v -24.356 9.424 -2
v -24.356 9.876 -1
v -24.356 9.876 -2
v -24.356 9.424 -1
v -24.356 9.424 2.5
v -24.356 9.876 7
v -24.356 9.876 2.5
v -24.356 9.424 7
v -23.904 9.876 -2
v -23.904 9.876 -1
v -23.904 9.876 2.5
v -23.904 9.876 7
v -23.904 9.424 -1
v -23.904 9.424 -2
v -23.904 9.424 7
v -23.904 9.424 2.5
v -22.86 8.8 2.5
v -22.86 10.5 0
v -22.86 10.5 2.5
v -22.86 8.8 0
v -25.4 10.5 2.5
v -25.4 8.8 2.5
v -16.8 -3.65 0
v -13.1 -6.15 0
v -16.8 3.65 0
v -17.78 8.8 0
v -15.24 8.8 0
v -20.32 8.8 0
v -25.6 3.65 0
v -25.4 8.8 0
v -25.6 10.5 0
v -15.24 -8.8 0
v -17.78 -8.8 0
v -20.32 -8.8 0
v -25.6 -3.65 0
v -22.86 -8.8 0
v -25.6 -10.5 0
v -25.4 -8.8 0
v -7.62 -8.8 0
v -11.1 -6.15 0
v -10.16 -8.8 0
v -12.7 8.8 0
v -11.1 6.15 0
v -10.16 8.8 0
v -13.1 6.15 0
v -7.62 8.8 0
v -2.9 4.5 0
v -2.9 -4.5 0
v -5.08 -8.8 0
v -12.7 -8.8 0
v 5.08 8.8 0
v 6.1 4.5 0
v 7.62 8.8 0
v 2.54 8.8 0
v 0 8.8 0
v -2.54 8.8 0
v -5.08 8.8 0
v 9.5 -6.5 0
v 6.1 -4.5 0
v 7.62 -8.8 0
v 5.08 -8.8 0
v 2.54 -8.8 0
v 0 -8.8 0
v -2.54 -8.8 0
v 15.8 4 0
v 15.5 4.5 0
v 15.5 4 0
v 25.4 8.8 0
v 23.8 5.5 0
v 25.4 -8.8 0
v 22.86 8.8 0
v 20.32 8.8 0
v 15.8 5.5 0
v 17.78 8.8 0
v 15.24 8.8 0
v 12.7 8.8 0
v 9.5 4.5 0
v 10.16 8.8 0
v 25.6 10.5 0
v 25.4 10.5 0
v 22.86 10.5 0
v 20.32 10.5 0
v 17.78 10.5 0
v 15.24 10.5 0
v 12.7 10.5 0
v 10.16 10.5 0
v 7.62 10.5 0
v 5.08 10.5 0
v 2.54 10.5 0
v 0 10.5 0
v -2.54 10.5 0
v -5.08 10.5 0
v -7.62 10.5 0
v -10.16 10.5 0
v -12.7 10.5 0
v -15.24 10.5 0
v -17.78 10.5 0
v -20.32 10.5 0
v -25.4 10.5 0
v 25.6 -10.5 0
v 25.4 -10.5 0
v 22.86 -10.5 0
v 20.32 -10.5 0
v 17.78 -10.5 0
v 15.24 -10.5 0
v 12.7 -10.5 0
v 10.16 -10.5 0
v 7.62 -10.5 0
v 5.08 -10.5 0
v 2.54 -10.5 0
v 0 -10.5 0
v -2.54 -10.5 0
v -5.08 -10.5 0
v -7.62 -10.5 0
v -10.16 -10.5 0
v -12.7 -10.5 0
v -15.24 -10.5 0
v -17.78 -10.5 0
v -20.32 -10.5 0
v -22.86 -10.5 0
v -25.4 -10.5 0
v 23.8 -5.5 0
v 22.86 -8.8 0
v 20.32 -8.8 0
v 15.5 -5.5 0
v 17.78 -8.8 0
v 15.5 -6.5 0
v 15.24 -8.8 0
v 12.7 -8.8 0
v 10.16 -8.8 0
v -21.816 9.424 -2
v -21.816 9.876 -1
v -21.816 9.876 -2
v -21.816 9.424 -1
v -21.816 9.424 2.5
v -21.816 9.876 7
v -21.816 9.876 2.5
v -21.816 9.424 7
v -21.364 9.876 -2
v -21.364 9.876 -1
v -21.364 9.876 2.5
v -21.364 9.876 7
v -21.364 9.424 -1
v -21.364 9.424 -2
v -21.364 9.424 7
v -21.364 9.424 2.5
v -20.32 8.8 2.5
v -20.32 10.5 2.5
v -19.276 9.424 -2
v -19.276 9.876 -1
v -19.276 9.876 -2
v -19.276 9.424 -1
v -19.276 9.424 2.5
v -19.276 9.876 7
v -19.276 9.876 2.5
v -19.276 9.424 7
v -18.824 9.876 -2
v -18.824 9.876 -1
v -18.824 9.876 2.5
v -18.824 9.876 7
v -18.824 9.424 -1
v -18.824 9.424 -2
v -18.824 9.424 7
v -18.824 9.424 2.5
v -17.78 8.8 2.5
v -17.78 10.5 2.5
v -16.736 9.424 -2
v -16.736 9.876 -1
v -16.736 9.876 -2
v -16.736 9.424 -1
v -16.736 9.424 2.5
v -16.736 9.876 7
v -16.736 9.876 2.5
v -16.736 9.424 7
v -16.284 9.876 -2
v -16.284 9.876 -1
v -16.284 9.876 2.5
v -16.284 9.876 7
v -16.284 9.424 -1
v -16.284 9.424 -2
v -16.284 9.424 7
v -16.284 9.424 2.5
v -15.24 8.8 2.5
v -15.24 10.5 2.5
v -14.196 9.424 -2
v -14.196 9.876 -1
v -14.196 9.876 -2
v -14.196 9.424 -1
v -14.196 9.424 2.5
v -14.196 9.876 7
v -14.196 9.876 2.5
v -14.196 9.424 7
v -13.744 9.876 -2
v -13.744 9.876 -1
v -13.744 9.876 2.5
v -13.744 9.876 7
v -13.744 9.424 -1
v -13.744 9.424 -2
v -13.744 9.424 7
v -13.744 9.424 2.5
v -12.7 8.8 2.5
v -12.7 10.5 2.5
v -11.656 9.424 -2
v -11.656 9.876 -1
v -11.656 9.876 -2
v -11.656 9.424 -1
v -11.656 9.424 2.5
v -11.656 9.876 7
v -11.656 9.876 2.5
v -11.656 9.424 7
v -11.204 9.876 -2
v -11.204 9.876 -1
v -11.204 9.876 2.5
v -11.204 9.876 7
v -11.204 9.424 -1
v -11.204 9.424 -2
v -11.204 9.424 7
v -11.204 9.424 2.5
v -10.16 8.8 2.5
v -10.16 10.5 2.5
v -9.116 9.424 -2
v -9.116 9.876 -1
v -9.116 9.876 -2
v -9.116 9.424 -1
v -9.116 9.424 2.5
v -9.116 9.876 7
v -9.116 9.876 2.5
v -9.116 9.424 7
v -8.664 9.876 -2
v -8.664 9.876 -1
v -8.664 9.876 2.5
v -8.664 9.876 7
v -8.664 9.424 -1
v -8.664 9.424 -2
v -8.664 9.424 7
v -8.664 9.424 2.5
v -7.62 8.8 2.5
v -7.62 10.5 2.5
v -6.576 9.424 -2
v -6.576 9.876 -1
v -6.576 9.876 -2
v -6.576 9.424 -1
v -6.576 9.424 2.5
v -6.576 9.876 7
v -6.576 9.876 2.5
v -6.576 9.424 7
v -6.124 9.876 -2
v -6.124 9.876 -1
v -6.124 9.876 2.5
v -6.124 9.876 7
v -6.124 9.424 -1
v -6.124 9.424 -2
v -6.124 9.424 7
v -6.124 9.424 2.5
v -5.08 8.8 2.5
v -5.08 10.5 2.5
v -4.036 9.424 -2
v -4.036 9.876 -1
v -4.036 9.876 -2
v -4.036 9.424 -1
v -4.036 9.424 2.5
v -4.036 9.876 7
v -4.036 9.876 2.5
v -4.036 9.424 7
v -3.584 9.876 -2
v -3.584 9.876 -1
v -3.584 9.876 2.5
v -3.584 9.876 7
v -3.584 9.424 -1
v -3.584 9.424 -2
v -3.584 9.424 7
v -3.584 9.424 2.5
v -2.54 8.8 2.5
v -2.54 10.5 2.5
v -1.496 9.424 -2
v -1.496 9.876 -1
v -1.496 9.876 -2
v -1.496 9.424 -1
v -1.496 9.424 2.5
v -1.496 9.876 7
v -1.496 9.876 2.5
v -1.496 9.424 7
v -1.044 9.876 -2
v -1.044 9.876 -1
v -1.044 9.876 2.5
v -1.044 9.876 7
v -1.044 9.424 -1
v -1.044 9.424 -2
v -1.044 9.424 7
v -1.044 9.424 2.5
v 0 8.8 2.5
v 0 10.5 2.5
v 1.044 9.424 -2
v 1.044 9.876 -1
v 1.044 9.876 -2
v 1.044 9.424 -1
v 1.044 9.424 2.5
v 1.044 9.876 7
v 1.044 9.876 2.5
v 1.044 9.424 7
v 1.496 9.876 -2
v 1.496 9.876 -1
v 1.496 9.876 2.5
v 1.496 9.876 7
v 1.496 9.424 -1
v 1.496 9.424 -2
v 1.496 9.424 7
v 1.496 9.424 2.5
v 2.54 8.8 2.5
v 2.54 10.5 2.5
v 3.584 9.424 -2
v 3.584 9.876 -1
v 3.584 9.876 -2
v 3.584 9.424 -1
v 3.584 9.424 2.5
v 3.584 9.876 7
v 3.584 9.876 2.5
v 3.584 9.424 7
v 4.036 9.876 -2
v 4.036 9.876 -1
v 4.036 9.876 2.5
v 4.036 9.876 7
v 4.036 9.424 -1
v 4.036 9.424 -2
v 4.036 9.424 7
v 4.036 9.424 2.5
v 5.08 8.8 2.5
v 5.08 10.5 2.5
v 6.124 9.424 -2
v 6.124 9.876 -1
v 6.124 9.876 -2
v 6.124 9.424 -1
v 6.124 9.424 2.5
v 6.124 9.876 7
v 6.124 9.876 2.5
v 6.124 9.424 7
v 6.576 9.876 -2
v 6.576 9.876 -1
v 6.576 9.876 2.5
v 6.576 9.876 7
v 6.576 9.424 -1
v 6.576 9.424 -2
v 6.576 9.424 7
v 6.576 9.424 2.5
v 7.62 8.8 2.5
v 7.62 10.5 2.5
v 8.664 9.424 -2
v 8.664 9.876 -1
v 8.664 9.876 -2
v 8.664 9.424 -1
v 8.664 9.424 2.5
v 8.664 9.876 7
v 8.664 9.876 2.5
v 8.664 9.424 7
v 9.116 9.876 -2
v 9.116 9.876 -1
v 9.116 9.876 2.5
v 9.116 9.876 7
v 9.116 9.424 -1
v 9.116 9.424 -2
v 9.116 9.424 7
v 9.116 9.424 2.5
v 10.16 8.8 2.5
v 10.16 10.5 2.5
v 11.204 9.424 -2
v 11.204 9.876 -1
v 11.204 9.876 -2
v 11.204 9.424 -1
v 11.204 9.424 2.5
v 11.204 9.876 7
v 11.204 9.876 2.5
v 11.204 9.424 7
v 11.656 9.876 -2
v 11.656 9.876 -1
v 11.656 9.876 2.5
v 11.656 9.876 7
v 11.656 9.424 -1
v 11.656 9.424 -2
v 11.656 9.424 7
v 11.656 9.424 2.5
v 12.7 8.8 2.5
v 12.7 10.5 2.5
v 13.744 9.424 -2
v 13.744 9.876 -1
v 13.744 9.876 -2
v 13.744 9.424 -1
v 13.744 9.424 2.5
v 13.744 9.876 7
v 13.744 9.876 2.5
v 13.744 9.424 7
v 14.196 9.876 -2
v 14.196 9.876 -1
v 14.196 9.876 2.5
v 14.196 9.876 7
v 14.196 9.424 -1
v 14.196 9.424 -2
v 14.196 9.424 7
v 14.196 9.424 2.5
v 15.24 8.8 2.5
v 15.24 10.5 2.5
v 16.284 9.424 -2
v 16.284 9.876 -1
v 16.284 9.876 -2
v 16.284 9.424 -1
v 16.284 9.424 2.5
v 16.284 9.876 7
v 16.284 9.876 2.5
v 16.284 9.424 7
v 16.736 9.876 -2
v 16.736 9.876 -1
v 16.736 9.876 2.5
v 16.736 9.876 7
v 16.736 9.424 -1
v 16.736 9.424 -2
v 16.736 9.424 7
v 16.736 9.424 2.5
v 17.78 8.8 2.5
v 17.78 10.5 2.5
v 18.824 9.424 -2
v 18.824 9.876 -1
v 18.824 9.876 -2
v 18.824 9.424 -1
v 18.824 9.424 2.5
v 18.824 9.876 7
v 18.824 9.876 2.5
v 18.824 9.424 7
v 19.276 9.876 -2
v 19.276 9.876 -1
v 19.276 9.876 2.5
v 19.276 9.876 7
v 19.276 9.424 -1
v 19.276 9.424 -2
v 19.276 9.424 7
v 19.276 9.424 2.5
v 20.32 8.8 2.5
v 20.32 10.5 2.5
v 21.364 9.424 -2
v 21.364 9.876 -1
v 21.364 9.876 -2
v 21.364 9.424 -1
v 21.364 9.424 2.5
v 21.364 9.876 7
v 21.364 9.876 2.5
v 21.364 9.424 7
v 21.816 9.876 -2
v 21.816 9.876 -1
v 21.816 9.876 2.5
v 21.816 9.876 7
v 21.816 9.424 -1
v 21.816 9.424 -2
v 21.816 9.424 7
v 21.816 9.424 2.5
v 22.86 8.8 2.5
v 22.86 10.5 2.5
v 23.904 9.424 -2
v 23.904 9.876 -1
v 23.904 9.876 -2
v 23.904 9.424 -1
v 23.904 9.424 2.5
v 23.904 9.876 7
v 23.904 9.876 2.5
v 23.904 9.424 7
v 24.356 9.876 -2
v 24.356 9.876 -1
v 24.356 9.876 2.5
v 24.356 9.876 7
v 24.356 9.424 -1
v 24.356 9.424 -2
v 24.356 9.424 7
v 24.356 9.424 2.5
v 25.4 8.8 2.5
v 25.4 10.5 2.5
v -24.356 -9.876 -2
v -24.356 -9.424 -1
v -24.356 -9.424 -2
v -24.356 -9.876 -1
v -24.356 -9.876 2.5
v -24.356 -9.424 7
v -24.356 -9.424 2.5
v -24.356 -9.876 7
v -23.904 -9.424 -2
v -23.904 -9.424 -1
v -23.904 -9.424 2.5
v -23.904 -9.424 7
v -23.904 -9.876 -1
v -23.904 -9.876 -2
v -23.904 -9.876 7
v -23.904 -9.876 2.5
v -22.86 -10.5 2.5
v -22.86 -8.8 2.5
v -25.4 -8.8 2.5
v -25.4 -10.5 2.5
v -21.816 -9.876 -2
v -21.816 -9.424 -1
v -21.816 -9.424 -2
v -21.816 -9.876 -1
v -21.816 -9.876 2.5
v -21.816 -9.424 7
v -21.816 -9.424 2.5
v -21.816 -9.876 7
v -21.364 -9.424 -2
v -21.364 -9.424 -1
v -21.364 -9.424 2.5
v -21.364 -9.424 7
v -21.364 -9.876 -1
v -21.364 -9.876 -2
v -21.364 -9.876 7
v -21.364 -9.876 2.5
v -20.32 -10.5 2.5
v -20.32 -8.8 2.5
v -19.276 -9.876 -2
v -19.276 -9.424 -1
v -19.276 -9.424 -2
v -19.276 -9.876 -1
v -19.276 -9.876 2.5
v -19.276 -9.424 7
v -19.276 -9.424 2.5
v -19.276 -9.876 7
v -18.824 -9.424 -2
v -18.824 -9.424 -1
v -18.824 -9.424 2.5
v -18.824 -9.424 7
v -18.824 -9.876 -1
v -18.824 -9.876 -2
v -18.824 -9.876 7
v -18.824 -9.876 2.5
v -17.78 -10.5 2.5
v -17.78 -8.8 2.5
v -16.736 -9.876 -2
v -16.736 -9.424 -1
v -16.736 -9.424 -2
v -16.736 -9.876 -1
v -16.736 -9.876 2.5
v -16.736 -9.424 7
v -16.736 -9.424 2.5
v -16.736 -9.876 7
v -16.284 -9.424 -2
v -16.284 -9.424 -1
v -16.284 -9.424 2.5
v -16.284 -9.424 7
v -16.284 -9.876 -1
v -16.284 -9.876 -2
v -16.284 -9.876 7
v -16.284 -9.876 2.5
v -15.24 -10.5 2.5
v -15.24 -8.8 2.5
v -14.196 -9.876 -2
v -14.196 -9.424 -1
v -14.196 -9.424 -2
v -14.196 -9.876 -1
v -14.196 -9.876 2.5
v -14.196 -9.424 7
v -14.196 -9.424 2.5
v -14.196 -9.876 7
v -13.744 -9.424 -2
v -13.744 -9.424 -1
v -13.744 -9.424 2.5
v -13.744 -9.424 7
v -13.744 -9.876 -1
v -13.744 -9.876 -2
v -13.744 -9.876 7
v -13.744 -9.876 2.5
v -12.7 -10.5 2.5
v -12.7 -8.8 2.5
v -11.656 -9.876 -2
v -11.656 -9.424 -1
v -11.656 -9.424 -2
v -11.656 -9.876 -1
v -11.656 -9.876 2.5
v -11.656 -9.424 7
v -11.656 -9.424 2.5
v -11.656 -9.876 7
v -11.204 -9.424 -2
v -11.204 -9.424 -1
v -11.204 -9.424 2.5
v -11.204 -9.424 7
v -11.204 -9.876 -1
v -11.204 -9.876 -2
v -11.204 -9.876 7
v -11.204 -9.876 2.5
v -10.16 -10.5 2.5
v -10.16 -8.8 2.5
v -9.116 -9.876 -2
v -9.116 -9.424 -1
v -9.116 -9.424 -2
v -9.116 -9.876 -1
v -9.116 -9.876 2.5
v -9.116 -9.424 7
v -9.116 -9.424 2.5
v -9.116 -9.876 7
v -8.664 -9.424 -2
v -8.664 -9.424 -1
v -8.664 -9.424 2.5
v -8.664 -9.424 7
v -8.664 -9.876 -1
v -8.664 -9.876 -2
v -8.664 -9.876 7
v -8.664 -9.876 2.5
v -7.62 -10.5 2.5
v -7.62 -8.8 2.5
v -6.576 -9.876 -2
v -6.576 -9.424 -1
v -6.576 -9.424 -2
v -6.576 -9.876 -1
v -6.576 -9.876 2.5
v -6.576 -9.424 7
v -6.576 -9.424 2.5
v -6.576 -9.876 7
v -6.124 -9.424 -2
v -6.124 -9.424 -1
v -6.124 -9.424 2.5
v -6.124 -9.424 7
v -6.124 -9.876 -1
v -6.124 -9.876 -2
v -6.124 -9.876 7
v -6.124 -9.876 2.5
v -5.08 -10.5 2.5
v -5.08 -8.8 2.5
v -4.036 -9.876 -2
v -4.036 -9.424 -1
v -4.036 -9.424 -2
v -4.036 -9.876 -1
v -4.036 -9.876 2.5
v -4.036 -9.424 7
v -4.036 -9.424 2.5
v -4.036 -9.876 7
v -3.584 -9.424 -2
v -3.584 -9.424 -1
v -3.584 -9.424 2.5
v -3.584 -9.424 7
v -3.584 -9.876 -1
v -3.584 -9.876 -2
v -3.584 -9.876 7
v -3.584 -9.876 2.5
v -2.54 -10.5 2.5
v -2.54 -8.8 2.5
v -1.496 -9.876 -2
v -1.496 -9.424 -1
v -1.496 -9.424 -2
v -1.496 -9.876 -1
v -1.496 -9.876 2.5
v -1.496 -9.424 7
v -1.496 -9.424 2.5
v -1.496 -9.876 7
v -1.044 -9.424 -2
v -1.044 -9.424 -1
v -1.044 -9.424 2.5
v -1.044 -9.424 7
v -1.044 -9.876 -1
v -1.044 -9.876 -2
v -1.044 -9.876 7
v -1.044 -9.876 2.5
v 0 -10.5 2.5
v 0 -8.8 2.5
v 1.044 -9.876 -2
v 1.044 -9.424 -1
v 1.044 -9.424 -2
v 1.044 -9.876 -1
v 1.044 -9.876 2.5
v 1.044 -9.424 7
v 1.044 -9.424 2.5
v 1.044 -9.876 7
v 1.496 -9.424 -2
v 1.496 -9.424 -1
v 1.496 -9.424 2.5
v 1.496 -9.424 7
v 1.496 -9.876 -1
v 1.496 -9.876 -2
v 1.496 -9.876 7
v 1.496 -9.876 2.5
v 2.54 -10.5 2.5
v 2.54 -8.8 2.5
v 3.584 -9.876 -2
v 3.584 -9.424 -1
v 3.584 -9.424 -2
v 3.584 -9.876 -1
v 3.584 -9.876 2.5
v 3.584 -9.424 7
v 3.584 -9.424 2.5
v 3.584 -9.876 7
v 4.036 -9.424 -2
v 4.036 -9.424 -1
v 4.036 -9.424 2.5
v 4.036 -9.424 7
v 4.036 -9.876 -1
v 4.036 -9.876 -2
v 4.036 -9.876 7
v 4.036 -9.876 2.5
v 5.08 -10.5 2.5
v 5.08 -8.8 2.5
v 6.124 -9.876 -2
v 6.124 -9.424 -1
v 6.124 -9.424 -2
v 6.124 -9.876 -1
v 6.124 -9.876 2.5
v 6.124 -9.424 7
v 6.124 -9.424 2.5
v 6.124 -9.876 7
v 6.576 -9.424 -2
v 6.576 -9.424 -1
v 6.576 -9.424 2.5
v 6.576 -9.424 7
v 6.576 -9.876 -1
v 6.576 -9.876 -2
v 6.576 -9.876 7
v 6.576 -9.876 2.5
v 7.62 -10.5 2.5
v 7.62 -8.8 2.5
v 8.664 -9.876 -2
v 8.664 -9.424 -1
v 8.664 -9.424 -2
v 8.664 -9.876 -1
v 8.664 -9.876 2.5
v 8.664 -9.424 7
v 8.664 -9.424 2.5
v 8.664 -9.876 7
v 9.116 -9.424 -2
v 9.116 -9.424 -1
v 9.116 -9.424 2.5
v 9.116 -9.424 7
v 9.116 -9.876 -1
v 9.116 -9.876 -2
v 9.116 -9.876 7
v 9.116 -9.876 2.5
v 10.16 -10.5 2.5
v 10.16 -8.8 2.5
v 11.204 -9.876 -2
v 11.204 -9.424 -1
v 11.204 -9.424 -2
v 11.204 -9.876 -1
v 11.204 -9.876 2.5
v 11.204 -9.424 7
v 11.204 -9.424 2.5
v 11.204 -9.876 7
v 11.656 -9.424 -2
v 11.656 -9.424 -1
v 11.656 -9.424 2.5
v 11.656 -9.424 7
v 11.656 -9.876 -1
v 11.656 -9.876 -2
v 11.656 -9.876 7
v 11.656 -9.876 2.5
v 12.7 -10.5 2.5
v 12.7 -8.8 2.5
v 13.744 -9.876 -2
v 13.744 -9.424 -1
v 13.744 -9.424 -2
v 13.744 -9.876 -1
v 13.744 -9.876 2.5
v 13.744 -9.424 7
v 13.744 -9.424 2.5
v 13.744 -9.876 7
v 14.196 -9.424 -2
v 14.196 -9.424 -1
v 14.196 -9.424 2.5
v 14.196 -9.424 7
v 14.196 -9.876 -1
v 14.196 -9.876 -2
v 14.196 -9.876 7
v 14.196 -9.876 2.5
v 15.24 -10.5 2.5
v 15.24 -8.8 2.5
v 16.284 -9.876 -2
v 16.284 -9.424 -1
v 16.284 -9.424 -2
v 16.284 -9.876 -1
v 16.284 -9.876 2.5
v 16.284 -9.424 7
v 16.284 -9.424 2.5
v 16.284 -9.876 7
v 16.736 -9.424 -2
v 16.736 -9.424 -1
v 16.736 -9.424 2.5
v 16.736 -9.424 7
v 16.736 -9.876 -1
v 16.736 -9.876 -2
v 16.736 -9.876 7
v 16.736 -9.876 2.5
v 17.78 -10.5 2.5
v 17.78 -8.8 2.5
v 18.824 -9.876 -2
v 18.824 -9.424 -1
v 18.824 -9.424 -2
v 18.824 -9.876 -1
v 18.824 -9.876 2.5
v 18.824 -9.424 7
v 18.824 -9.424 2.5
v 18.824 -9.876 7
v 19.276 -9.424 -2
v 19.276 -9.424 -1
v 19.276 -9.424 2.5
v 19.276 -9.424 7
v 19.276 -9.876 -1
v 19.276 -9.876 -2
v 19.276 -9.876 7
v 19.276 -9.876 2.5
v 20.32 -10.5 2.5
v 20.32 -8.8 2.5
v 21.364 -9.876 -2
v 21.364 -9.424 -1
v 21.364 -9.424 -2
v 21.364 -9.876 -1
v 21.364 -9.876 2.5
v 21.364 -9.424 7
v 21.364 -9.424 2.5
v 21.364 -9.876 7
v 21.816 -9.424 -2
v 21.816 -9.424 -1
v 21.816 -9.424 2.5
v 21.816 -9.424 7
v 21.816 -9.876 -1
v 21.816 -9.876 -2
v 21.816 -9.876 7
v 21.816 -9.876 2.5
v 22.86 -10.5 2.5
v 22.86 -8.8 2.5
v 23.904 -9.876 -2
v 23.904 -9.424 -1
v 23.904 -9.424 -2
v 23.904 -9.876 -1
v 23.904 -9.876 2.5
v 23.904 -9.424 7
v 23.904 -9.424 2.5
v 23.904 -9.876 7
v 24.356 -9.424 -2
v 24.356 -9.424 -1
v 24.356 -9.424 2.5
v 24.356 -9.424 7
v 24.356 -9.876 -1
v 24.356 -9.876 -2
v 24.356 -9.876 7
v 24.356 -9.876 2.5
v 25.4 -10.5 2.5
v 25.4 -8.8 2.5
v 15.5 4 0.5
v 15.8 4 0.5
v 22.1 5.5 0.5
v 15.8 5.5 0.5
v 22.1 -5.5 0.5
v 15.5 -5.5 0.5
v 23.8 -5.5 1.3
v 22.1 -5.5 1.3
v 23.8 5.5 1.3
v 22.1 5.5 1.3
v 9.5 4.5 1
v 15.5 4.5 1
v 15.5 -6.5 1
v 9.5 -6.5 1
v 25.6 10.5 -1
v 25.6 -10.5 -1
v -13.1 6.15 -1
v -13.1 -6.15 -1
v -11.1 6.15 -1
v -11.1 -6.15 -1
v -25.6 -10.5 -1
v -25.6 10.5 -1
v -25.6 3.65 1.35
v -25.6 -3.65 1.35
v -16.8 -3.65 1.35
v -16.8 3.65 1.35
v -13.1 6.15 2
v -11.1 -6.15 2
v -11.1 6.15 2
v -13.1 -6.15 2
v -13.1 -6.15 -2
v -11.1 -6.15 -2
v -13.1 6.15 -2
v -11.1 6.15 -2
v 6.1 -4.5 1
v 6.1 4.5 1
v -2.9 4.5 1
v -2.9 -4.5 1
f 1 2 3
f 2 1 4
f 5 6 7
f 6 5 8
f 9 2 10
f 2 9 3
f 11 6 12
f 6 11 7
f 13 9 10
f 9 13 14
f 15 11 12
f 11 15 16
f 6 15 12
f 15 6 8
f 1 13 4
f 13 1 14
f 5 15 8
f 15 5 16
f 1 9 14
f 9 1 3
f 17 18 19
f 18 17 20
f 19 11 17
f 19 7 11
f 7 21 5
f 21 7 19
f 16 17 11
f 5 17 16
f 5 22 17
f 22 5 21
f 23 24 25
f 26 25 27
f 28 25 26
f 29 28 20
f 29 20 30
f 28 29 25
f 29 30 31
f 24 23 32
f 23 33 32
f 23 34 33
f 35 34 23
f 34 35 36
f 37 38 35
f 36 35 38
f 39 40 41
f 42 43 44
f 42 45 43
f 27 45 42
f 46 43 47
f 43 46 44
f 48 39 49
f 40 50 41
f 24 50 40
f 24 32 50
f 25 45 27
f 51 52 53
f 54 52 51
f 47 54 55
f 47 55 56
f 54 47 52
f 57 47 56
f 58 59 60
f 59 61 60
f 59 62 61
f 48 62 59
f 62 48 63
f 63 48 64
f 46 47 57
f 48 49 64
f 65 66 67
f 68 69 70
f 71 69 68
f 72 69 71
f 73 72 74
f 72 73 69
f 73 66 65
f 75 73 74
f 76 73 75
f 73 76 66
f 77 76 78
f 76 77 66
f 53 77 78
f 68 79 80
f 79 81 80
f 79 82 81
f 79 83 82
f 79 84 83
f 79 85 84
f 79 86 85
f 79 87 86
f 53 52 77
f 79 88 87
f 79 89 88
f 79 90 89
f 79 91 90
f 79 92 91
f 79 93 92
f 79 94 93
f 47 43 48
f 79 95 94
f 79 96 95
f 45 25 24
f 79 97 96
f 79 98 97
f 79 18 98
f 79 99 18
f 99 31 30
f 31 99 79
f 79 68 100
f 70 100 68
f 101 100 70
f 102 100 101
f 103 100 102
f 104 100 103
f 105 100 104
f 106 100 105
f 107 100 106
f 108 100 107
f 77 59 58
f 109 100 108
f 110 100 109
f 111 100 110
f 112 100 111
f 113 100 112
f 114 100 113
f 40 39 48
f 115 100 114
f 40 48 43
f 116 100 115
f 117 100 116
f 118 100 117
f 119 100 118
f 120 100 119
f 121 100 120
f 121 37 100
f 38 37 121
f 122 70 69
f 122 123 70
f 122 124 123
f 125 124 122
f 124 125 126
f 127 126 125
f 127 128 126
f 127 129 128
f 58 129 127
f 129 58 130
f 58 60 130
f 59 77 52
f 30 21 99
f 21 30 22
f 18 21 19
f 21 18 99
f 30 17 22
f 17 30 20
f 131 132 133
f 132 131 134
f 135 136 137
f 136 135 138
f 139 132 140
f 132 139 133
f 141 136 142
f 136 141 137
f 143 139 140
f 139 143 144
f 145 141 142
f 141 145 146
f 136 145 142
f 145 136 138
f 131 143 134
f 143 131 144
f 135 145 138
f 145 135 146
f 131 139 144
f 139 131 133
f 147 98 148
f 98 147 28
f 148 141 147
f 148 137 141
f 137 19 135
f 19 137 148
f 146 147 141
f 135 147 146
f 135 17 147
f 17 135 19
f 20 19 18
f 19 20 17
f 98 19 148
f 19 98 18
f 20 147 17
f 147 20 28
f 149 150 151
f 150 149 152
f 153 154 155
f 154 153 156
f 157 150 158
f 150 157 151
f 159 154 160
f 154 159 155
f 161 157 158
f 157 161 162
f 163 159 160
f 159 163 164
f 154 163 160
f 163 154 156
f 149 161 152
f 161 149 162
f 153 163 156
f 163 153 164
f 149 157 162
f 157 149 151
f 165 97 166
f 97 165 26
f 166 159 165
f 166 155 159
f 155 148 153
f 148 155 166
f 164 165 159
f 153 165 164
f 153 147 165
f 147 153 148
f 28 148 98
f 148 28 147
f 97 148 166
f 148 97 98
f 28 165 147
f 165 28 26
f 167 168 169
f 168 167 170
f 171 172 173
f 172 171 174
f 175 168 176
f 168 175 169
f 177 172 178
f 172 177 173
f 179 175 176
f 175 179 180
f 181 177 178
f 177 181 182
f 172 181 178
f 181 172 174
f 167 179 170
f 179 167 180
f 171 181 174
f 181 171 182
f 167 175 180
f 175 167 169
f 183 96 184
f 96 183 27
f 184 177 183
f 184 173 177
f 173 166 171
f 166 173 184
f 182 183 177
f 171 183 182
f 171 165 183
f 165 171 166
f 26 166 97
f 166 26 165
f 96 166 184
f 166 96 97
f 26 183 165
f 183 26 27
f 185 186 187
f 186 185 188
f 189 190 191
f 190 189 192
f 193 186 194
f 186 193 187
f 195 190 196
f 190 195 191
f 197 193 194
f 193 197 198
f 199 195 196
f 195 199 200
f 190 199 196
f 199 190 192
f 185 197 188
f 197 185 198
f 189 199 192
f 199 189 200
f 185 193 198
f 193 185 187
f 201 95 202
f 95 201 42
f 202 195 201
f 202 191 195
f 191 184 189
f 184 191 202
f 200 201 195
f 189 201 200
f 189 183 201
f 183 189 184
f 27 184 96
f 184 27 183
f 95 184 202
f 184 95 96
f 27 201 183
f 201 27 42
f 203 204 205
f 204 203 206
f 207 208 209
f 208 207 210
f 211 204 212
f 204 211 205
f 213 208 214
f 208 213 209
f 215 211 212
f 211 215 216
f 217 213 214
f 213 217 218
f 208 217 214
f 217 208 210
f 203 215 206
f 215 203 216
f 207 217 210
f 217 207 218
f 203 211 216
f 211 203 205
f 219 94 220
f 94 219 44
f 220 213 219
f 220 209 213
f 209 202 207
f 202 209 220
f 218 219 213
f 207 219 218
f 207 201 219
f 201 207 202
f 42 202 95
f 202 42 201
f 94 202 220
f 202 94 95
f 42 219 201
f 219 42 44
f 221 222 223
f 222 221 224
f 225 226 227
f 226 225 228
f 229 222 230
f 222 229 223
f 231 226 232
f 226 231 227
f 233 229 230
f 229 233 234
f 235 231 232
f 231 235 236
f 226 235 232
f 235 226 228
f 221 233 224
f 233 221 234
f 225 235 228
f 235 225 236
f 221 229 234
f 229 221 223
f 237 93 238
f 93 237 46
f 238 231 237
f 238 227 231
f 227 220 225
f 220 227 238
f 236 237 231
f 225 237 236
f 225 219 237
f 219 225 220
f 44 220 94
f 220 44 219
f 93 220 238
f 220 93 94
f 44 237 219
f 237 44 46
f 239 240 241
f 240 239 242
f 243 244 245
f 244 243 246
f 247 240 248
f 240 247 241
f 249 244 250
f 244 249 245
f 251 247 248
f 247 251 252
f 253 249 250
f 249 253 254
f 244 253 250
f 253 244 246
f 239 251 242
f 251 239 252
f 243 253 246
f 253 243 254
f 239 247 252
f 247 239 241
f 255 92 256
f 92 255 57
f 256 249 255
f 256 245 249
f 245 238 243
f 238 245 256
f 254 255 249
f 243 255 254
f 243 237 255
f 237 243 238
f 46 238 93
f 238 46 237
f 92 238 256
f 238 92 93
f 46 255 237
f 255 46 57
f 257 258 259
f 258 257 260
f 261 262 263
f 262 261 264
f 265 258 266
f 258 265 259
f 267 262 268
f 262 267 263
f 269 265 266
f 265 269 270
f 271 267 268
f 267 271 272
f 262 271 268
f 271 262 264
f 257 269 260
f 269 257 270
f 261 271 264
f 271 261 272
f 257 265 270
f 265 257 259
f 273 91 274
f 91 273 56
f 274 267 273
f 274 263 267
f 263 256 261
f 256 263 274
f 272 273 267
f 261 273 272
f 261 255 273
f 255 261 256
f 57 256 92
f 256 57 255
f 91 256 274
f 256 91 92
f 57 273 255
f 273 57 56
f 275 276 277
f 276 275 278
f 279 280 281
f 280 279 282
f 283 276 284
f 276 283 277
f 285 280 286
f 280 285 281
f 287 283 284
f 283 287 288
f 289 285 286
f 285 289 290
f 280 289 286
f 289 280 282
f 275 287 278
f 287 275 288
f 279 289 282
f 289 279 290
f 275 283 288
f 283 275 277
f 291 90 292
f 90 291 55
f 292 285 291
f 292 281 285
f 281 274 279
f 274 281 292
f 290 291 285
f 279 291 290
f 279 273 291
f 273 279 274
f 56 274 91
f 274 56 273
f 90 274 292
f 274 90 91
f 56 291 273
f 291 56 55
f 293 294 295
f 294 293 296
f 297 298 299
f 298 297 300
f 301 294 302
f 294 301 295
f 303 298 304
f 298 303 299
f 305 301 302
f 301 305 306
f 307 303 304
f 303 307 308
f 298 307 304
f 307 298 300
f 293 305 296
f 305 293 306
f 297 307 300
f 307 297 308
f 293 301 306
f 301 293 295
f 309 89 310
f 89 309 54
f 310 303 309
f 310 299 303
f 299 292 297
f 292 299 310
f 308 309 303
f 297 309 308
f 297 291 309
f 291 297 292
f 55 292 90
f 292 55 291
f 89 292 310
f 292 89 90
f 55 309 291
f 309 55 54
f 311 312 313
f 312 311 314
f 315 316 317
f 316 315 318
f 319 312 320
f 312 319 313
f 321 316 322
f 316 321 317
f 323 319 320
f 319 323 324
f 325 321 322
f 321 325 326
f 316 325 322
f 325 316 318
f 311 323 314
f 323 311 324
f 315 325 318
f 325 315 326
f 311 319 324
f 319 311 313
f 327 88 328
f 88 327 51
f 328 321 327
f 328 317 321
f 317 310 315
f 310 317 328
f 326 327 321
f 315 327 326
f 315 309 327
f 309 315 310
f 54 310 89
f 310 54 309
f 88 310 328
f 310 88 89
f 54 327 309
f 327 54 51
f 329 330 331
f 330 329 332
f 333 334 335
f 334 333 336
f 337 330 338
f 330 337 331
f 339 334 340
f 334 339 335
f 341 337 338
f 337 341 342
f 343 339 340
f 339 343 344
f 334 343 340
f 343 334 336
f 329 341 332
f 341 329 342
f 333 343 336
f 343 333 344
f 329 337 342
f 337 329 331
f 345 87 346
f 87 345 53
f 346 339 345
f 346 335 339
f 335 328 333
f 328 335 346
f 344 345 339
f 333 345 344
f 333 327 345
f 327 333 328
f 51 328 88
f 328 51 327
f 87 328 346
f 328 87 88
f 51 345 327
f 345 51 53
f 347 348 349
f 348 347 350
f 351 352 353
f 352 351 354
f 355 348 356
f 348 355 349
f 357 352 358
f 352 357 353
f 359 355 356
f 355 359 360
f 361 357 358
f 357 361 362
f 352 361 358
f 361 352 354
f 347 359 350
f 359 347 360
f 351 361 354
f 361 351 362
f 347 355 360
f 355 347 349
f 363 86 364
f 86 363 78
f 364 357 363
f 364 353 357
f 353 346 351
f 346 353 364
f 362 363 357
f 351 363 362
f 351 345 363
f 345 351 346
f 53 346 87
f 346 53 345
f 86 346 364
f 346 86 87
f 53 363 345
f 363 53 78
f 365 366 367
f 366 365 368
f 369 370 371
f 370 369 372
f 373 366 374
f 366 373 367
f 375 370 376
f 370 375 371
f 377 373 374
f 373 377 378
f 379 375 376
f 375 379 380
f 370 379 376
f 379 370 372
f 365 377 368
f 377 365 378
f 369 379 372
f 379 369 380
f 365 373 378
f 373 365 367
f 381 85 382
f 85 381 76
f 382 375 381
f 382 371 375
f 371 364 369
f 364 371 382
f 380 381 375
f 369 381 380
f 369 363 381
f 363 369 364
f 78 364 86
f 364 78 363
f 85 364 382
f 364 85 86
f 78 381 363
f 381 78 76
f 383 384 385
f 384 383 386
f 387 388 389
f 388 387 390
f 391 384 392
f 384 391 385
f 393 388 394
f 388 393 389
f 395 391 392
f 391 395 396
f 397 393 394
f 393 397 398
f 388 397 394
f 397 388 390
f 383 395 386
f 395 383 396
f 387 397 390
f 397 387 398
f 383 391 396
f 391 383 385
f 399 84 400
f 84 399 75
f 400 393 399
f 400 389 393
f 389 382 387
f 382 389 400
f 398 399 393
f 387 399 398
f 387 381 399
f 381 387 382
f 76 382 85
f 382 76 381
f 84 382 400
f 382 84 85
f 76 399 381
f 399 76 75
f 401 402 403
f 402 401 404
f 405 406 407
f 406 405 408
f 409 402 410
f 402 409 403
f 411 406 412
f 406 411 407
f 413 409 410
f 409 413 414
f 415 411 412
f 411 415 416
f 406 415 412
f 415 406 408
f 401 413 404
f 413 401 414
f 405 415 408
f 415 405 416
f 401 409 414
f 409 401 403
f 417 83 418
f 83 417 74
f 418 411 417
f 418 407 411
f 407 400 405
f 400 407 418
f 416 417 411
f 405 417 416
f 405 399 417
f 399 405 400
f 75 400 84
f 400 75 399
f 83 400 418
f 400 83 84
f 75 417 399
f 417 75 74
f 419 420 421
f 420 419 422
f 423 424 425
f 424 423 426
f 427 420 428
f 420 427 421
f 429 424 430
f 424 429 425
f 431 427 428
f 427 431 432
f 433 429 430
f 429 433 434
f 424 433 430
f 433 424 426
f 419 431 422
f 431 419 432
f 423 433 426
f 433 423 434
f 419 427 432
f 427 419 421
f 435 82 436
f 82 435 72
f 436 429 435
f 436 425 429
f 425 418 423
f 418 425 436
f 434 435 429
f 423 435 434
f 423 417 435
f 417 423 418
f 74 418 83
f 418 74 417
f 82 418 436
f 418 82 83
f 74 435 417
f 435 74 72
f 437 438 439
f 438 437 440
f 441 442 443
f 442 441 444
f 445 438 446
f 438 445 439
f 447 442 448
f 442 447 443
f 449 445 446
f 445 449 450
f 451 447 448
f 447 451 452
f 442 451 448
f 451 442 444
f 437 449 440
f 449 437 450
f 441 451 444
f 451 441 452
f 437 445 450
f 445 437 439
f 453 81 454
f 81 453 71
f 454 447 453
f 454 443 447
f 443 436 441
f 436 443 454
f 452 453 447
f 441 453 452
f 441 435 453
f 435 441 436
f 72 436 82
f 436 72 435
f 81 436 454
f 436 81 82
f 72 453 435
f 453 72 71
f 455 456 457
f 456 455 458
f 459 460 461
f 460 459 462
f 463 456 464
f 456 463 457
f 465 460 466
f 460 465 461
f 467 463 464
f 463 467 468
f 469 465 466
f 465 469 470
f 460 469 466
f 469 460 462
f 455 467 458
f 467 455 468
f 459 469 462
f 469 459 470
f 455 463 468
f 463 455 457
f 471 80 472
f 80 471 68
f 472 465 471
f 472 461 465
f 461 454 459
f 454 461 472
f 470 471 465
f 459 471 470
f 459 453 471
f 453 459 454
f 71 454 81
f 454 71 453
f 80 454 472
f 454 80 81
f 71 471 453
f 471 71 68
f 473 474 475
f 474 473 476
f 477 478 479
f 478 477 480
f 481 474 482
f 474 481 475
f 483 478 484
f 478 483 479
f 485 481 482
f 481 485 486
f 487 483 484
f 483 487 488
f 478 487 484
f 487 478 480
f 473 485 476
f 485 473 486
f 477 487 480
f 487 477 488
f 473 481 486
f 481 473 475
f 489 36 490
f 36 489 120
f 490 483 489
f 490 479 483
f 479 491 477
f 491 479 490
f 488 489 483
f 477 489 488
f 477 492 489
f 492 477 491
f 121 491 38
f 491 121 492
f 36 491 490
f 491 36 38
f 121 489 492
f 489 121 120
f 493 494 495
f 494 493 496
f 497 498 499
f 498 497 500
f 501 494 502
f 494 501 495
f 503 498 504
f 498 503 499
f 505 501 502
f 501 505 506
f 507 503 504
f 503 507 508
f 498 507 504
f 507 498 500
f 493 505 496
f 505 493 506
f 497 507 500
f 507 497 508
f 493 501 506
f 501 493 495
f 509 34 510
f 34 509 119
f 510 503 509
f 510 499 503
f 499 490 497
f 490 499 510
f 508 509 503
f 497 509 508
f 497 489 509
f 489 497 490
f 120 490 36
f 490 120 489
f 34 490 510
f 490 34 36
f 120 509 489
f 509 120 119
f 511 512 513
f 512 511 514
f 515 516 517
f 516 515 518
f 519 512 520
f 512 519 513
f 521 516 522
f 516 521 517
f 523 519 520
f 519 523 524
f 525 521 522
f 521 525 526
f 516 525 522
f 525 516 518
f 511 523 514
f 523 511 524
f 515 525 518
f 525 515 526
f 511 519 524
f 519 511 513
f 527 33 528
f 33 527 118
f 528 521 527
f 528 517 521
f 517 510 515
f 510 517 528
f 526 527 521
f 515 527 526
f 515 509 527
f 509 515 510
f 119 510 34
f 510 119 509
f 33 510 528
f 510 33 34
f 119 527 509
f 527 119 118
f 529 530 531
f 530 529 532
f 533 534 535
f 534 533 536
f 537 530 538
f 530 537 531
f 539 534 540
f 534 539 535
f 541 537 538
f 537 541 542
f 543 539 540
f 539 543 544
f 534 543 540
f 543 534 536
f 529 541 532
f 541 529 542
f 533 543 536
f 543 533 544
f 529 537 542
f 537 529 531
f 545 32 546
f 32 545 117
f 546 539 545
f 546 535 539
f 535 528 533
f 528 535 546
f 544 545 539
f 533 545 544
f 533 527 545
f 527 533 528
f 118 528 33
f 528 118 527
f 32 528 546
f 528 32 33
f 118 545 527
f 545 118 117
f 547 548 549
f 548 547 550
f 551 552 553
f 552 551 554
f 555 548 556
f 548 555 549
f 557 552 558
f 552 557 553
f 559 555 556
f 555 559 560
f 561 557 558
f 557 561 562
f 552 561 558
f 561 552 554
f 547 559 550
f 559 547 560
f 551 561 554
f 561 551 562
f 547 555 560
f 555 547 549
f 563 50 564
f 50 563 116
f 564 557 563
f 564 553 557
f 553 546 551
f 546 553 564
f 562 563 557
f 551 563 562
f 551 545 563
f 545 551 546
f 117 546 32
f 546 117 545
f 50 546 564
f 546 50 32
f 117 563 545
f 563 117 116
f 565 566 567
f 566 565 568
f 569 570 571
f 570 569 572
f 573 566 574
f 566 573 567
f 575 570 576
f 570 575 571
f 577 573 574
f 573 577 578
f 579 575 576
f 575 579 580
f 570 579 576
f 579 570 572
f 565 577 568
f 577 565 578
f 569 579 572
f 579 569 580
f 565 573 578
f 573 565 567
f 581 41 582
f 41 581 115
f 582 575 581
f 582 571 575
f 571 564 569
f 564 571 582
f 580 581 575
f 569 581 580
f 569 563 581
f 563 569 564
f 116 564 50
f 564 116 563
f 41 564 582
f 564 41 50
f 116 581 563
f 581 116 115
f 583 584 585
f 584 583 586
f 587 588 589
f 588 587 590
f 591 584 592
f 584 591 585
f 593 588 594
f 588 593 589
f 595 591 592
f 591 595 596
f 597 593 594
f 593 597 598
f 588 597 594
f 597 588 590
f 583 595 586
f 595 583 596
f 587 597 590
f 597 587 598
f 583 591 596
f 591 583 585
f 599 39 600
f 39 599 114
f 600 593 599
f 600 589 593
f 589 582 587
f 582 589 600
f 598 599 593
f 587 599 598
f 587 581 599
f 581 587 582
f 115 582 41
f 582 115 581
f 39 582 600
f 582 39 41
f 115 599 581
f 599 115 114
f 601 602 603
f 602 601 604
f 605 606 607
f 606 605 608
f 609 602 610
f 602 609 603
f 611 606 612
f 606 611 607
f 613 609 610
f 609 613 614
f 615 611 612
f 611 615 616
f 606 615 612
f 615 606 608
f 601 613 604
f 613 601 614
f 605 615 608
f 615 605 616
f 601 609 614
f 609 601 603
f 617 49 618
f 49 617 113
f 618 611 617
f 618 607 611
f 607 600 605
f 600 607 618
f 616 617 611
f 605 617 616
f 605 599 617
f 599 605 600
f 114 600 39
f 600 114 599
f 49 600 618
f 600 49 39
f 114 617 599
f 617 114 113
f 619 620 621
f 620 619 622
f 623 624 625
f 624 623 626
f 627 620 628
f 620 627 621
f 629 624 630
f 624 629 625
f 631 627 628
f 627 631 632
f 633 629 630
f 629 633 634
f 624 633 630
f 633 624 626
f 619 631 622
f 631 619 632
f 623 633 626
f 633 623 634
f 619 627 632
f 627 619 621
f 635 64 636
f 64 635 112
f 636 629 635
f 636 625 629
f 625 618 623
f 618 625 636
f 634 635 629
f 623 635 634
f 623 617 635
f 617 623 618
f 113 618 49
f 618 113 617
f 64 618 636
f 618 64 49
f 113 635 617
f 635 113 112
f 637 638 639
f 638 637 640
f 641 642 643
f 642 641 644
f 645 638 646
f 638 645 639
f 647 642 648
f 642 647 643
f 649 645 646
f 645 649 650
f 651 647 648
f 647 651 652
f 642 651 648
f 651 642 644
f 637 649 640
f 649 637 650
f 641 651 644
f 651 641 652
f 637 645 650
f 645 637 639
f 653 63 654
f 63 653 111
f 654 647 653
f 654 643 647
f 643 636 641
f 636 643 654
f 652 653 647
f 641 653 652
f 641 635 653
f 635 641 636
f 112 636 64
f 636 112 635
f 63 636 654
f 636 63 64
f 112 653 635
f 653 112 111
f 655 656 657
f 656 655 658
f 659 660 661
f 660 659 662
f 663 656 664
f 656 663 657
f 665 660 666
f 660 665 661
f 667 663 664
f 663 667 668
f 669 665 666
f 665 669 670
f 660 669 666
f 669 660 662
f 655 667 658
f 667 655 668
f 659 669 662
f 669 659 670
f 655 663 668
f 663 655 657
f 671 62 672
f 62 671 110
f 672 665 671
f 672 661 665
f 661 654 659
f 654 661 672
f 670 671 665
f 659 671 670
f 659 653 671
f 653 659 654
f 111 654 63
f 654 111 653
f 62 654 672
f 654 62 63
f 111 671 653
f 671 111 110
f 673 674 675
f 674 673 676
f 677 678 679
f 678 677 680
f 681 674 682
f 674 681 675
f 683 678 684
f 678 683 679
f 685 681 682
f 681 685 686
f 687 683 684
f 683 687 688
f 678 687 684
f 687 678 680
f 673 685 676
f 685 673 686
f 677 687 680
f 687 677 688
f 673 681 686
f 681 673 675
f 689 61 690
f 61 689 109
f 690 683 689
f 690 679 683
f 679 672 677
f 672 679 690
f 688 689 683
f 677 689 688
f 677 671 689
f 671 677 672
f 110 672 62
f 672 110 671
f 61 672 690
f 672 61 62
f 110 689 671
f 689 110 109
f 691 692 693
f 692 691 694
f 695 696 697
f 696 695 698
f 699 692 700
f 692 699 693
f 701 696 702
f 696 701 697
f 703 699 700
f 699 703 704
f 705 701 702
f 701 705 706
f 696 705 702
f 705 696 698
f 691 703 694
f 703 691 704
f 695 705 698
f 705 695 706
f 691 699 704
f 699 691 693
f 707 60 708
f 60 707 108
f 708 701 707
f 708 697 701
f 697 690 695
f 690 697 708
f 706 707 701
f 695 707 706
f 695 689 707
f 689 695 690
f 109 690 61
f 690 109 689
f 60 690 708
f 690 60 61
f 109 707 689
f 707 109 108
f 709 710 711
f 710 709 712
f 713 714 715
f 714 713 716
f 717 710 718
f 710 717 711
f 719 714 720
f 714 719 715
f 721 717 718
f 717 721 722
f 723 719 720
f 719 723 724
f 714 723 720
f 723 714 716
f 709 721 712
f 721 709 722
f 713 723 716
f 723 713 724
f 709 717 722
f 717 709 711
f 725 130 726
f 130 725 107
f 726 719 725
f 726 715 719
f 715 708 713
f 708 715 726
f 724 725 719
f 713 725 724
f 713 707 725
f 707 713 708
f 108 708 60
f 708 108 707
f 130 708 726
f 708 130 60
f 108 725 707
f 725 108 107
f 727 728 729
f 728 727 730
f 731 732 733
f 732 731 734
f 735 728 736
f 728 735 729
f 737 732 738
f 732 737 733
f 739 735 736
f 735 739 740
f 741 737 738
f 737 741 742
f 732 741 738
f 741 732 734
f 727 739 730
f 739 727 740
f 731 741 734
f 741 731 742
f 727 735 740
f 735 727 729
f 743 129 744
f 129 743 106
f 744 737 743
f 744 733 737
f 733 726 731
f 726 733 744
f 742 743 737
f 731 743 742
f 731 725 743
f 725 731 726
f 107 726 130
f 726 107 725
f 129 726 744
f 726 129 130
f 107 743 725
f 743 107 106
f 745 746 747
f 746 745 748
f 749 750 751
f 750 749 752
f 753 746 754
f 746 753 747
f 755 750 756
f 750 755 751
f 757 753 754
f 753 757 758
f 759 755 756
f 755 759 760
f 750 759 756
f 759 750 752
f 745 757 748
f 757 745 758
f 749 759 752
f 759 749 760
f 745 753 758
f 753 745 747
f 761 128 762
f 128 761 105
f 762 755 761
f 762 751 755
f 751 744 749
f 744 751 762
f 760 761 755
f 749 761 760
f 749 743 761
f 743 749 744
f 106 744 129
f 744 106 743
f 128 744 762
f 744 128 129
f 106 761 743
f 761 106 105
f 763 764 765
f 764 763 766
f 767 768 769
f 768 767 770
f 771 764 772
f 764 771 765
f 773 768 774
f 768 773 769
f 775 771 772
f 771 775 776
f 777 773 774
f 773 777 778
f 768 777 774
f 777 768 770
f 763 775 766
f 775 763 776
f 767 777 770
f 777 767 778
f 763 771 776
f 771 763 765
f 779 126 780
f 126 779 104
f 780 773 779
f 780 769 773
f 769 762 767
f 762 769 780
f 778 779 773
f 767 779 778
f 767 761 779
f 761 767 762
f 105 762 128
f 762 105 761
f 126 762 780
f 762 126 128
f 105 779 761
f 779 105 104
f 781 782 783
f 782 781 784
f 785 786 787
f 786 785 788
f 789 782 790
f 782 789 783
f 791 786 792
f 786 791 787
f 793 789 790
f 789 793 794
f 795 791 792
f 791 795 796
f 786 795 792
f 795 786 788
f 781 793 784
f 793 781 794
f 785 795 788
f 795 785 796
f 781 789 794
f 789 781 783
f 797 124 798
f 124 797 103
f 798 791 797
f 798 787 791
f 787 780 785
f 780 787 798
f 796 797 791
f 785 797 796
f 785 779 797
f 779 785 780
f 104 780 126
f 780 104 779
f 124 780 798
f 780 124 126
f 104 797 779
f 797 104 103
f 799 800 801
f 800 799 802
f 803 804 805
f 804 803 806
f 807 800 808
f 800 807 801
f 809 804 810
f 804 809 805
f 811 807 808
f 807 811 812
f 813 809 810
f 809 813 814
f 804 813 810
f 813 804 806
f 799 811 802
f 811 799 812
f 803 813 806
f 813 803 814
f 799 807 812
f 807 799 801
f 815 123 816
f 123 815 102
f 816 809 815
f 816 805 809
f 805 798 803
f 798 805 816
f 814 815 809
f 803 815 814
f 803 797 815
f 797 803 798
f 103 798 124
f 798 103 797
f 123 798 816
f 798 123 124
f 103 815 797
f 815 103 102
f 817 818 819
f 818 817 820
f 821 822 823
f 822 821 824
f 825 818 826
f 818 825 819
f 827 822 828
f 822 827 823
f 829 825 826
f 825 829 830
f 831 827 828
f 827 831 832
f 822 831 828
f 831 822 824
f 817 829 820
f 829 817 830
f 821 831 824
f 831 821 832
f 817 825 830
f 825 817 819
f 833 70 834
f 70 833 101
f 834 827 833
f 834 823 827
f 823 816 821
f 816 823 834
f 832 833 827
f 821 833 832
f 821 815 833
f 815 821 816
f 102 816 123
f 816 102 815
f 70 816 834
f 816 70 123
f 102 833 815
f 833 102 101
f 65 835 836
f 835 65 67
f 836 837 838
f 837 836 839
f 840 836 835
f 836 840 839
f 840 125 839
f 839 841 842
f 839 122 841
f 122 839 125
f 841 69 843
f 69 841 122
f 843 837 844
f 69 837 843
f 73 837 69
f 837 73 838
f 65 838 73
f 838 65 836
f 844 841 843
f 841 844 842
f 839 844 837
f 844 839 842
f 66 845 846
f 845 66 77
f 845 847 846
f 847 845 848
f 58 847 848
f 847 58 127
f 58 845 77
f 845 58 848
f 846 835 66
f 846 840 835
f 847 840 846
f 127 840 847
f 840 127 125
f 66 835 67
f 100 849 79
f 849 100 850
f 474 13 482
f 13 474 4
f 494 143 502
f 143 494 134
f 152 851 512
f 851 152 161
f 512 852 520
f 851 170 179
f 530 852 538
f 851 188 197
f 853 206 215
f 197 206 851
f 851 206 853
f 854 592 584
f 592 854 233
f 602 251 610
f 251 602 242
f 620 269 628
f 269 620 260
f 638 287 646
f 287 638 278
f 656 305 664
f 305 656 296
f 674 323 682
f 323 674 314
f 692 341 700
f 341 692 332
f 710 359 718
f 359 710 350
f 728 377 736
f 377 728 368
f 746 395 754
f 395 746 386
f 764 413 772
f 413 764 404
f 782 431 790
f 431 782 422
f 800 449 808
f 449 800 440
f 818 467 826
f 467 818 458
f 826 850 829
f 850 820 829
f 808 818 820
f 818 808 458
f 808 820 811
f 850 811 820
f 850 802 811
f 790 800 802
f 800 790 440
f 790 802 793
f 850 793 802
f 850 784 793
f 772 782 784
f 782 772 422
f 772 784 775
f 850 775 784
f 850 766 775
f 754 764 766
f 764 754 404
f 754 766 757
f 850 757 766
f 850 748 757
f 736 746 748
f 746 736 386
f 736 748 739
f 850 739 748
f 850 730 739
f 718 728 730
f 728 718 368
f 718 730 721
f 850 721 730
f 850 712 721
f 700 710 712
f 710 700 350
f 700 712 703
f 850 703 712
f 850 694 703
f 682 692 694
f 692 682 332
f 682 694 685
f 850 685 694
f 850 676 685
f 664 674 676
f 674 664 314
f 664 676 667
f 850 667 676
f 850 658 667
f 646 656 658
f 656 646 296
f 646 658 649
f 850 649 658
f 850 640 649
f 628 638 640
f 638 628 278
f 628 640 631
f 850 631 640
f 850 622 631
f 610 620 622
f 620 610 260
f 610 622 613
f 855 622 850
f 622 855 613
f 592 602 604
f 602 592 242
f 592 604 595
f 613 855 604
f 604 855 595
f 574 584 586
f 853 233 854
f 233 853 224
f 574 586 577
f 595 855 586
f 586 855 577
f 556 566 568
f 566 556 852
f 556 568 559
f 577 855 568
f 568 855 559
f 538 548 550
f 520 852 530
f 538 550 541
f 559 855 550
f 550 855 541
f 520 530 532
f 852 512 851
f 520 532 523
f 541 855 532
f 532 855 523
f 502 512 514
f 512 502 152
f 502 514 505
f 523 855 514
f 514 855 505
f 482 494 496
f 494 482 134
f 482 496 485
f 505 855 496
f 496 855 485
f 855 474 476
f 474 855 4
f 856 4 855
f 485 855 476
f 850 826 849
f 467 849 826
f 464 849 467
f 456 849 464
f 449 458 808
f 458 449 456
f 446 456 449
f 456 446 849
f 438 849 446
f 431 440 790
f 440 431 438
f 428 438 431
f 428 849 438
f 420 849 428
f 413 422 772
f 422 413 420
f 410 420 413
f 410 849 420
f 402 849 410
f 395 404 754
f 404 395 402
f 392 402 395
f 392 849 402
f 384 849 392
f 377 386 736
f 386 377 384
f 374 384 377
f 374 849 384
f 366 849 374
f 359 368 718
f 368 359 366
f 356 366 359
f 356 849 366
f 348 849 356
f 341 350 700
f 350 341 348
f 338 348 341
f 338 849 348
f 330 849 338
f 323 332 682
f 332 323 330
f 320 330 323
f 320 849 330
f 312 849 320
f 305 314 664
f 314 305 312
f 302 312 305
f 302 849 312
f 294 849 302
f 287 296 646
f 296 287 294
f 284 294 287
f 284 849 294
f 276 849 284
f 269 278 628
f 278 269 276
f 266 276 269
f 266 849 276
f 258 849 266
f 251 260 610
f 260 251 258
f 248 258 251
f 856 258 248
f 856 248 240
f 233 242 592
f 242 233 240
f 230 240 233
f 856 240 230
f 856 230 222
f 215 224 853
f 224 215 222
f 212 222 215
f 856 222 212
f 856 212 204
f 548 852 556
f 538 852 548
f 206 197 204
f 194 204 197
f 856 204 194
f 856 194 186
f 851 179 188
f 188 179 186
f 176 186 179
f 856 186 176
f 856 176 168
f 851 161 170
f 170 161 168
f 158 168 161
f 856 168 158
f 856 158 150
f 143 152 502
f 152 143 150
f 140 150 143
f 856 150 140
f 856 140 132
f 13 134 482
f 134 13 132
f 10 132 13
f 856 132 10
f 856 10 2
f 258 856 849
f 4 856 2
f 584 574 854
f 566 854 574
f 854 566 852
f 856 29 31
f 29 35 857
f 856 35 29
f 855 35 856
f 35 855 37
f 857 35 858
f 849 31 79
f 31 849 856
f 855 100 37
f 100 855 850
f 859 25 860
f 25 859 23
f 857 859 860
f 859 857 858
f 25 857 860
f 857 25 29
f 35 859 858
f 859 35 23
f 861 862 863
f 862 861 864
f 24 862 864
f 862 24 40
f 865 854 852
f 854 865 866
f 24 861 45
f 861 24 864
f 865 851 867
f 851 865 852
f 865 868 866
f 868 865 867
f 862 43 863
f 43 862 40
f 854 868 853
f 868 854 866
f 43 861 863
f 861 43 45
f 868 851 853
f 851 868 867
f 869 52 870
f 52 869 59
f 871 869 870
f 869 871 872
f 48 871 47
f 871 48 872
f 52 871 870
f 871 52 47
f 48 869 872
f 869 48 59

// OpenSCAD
pcb_size=[51.2,
          21,
          1];

usb_connector_size=[8.8,
                    7,
                    1.2];

SPI_connector_size = [12.3,
                      2,
                      4];

tolerance = 0.3;

body_depth = 1.7; // Depth of the connector body
module header_male(pin_count, body_depth)
{
    // Parameters
    pin_height = 11.5; // Total height of the pin
    pin_width = 0.64; // Width of the pin
    pin_depth = 0.64; // Depth of the pin
    body_height = 2.5; // Height of the connector body
    pitch = 2.54; // Distance between pins center to center
    single_unit_width = pitch; // Width of a single unit, based on pitch
    //body_depth = 1.7; // Depth of the connector body

    // Single Unit Module (One Pin + Part of Body)
    module single_unit() {
        // Pin
        color("gray")
            translate([0, 0, body_height])
                rotate([0,0,45])      
                    cylinder(h = pin_height - body_height, r = pin_width / 2, $fn = 4, center = true);
        
        // Body Part
        color("black")
            translate([0, 0, body_height / 2])
                cube([single_unit_width, body_depth, body_height], center = true);
    }

    for (i = [0:pin_count-1]) {
        translate([pitch * i - ((pin_count-1) * pitch) / 2, 0, 0]) single_unit();
    }
}




module pcb(size, color, tolerance = 0)
{
    color(color)
    {
        translate([0,0,-size[2]/2])
        {
            cube(size,center=true);
        }
    }
}

module usb_connector(size, color, tolerance = 0, extrude=false)
{
    extrude_size = extrude ? 30 : 0;
    color(color)
    {
        translate([0,0,size[2]/2])
        {
            cube(size+[extrude_size,tolerance,tolerance],center=true);
        }
    }
}

module micro_sd_reader_with_sd()
{   
    rotate([0,0,90])   
    {
        translate([-5.5,-8.3,0])
        {
            union()
            {
                color("orange")
                    union()
                    {
                        cube([9.5,13,0.5]);
                        cube([11,8,0.5]);
                        cube([11,1.7,1.3]);
                    }
                    
                color("gray")
                {
                    translate([-1, 8.3, 0])
                    {
                        cube([11,6,1]);
                    }
                }
            }
        }
    }
}


module milkv_board(pcb_size, usb_connector_size, tolerance=0, extrude=false)
{
    // pcb
    pcb(pcb_size, "pink", tolerance);

    // usb connector
    translate([usb_connector_size[0]/2-pcb_size[0]/2,0,0])
        usb_connector(usb_connector_size, "gray", tolerance, extrude);
    
    // spi connector
    color("white")
        translate([12.5+SPI_connector_size[1]/2-pcb_size[0]/2,0,0])
            rotate([0,0,90])
                cube(SPI_connector_size,center=true);
    
    
    // pins
    translate([0,pcb_size[1]/2 -body_depth/2 ,0])
        header_male(20, body_depth);
    translate([0,body_depth/2-pcb_size[1]/2,0])
        header_male(20, body_depth);

    // micro sd    
    translate([15.5, 0, 0])
        micro_sd_reader_with_sd();
        
        
     // SoC
     
     color("black")
        translate([1.6,0,0.5])
            cube(size=[9,9,1], center=true);
}

milkv_board(pcb_size, usb_connector_size, tolerance=tolerance, extrude=false);
